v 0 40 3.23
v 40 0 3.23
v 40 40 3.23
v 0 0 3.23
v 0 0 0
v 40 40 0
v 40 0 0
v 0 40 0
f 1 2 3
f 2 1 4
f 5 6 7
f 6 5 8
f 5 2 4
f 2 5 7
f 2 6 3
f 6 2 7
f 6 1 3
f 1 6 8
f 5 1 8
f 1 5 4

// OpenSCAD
/* Warning, this is a very basic generator with a lot of approximation 
input data : [HBBGA, NMC, 40x40x3.23mm, 1503, , A, C04-25480A]
generated by com.zoubworld.electronics.cad.model3d.Basic
Date : Sun Feb 15 10:50:49 CET 2026
*/

//body
color("black")
translate([0,0,0])
cube([40.0,40.0,3.23], center=false);
